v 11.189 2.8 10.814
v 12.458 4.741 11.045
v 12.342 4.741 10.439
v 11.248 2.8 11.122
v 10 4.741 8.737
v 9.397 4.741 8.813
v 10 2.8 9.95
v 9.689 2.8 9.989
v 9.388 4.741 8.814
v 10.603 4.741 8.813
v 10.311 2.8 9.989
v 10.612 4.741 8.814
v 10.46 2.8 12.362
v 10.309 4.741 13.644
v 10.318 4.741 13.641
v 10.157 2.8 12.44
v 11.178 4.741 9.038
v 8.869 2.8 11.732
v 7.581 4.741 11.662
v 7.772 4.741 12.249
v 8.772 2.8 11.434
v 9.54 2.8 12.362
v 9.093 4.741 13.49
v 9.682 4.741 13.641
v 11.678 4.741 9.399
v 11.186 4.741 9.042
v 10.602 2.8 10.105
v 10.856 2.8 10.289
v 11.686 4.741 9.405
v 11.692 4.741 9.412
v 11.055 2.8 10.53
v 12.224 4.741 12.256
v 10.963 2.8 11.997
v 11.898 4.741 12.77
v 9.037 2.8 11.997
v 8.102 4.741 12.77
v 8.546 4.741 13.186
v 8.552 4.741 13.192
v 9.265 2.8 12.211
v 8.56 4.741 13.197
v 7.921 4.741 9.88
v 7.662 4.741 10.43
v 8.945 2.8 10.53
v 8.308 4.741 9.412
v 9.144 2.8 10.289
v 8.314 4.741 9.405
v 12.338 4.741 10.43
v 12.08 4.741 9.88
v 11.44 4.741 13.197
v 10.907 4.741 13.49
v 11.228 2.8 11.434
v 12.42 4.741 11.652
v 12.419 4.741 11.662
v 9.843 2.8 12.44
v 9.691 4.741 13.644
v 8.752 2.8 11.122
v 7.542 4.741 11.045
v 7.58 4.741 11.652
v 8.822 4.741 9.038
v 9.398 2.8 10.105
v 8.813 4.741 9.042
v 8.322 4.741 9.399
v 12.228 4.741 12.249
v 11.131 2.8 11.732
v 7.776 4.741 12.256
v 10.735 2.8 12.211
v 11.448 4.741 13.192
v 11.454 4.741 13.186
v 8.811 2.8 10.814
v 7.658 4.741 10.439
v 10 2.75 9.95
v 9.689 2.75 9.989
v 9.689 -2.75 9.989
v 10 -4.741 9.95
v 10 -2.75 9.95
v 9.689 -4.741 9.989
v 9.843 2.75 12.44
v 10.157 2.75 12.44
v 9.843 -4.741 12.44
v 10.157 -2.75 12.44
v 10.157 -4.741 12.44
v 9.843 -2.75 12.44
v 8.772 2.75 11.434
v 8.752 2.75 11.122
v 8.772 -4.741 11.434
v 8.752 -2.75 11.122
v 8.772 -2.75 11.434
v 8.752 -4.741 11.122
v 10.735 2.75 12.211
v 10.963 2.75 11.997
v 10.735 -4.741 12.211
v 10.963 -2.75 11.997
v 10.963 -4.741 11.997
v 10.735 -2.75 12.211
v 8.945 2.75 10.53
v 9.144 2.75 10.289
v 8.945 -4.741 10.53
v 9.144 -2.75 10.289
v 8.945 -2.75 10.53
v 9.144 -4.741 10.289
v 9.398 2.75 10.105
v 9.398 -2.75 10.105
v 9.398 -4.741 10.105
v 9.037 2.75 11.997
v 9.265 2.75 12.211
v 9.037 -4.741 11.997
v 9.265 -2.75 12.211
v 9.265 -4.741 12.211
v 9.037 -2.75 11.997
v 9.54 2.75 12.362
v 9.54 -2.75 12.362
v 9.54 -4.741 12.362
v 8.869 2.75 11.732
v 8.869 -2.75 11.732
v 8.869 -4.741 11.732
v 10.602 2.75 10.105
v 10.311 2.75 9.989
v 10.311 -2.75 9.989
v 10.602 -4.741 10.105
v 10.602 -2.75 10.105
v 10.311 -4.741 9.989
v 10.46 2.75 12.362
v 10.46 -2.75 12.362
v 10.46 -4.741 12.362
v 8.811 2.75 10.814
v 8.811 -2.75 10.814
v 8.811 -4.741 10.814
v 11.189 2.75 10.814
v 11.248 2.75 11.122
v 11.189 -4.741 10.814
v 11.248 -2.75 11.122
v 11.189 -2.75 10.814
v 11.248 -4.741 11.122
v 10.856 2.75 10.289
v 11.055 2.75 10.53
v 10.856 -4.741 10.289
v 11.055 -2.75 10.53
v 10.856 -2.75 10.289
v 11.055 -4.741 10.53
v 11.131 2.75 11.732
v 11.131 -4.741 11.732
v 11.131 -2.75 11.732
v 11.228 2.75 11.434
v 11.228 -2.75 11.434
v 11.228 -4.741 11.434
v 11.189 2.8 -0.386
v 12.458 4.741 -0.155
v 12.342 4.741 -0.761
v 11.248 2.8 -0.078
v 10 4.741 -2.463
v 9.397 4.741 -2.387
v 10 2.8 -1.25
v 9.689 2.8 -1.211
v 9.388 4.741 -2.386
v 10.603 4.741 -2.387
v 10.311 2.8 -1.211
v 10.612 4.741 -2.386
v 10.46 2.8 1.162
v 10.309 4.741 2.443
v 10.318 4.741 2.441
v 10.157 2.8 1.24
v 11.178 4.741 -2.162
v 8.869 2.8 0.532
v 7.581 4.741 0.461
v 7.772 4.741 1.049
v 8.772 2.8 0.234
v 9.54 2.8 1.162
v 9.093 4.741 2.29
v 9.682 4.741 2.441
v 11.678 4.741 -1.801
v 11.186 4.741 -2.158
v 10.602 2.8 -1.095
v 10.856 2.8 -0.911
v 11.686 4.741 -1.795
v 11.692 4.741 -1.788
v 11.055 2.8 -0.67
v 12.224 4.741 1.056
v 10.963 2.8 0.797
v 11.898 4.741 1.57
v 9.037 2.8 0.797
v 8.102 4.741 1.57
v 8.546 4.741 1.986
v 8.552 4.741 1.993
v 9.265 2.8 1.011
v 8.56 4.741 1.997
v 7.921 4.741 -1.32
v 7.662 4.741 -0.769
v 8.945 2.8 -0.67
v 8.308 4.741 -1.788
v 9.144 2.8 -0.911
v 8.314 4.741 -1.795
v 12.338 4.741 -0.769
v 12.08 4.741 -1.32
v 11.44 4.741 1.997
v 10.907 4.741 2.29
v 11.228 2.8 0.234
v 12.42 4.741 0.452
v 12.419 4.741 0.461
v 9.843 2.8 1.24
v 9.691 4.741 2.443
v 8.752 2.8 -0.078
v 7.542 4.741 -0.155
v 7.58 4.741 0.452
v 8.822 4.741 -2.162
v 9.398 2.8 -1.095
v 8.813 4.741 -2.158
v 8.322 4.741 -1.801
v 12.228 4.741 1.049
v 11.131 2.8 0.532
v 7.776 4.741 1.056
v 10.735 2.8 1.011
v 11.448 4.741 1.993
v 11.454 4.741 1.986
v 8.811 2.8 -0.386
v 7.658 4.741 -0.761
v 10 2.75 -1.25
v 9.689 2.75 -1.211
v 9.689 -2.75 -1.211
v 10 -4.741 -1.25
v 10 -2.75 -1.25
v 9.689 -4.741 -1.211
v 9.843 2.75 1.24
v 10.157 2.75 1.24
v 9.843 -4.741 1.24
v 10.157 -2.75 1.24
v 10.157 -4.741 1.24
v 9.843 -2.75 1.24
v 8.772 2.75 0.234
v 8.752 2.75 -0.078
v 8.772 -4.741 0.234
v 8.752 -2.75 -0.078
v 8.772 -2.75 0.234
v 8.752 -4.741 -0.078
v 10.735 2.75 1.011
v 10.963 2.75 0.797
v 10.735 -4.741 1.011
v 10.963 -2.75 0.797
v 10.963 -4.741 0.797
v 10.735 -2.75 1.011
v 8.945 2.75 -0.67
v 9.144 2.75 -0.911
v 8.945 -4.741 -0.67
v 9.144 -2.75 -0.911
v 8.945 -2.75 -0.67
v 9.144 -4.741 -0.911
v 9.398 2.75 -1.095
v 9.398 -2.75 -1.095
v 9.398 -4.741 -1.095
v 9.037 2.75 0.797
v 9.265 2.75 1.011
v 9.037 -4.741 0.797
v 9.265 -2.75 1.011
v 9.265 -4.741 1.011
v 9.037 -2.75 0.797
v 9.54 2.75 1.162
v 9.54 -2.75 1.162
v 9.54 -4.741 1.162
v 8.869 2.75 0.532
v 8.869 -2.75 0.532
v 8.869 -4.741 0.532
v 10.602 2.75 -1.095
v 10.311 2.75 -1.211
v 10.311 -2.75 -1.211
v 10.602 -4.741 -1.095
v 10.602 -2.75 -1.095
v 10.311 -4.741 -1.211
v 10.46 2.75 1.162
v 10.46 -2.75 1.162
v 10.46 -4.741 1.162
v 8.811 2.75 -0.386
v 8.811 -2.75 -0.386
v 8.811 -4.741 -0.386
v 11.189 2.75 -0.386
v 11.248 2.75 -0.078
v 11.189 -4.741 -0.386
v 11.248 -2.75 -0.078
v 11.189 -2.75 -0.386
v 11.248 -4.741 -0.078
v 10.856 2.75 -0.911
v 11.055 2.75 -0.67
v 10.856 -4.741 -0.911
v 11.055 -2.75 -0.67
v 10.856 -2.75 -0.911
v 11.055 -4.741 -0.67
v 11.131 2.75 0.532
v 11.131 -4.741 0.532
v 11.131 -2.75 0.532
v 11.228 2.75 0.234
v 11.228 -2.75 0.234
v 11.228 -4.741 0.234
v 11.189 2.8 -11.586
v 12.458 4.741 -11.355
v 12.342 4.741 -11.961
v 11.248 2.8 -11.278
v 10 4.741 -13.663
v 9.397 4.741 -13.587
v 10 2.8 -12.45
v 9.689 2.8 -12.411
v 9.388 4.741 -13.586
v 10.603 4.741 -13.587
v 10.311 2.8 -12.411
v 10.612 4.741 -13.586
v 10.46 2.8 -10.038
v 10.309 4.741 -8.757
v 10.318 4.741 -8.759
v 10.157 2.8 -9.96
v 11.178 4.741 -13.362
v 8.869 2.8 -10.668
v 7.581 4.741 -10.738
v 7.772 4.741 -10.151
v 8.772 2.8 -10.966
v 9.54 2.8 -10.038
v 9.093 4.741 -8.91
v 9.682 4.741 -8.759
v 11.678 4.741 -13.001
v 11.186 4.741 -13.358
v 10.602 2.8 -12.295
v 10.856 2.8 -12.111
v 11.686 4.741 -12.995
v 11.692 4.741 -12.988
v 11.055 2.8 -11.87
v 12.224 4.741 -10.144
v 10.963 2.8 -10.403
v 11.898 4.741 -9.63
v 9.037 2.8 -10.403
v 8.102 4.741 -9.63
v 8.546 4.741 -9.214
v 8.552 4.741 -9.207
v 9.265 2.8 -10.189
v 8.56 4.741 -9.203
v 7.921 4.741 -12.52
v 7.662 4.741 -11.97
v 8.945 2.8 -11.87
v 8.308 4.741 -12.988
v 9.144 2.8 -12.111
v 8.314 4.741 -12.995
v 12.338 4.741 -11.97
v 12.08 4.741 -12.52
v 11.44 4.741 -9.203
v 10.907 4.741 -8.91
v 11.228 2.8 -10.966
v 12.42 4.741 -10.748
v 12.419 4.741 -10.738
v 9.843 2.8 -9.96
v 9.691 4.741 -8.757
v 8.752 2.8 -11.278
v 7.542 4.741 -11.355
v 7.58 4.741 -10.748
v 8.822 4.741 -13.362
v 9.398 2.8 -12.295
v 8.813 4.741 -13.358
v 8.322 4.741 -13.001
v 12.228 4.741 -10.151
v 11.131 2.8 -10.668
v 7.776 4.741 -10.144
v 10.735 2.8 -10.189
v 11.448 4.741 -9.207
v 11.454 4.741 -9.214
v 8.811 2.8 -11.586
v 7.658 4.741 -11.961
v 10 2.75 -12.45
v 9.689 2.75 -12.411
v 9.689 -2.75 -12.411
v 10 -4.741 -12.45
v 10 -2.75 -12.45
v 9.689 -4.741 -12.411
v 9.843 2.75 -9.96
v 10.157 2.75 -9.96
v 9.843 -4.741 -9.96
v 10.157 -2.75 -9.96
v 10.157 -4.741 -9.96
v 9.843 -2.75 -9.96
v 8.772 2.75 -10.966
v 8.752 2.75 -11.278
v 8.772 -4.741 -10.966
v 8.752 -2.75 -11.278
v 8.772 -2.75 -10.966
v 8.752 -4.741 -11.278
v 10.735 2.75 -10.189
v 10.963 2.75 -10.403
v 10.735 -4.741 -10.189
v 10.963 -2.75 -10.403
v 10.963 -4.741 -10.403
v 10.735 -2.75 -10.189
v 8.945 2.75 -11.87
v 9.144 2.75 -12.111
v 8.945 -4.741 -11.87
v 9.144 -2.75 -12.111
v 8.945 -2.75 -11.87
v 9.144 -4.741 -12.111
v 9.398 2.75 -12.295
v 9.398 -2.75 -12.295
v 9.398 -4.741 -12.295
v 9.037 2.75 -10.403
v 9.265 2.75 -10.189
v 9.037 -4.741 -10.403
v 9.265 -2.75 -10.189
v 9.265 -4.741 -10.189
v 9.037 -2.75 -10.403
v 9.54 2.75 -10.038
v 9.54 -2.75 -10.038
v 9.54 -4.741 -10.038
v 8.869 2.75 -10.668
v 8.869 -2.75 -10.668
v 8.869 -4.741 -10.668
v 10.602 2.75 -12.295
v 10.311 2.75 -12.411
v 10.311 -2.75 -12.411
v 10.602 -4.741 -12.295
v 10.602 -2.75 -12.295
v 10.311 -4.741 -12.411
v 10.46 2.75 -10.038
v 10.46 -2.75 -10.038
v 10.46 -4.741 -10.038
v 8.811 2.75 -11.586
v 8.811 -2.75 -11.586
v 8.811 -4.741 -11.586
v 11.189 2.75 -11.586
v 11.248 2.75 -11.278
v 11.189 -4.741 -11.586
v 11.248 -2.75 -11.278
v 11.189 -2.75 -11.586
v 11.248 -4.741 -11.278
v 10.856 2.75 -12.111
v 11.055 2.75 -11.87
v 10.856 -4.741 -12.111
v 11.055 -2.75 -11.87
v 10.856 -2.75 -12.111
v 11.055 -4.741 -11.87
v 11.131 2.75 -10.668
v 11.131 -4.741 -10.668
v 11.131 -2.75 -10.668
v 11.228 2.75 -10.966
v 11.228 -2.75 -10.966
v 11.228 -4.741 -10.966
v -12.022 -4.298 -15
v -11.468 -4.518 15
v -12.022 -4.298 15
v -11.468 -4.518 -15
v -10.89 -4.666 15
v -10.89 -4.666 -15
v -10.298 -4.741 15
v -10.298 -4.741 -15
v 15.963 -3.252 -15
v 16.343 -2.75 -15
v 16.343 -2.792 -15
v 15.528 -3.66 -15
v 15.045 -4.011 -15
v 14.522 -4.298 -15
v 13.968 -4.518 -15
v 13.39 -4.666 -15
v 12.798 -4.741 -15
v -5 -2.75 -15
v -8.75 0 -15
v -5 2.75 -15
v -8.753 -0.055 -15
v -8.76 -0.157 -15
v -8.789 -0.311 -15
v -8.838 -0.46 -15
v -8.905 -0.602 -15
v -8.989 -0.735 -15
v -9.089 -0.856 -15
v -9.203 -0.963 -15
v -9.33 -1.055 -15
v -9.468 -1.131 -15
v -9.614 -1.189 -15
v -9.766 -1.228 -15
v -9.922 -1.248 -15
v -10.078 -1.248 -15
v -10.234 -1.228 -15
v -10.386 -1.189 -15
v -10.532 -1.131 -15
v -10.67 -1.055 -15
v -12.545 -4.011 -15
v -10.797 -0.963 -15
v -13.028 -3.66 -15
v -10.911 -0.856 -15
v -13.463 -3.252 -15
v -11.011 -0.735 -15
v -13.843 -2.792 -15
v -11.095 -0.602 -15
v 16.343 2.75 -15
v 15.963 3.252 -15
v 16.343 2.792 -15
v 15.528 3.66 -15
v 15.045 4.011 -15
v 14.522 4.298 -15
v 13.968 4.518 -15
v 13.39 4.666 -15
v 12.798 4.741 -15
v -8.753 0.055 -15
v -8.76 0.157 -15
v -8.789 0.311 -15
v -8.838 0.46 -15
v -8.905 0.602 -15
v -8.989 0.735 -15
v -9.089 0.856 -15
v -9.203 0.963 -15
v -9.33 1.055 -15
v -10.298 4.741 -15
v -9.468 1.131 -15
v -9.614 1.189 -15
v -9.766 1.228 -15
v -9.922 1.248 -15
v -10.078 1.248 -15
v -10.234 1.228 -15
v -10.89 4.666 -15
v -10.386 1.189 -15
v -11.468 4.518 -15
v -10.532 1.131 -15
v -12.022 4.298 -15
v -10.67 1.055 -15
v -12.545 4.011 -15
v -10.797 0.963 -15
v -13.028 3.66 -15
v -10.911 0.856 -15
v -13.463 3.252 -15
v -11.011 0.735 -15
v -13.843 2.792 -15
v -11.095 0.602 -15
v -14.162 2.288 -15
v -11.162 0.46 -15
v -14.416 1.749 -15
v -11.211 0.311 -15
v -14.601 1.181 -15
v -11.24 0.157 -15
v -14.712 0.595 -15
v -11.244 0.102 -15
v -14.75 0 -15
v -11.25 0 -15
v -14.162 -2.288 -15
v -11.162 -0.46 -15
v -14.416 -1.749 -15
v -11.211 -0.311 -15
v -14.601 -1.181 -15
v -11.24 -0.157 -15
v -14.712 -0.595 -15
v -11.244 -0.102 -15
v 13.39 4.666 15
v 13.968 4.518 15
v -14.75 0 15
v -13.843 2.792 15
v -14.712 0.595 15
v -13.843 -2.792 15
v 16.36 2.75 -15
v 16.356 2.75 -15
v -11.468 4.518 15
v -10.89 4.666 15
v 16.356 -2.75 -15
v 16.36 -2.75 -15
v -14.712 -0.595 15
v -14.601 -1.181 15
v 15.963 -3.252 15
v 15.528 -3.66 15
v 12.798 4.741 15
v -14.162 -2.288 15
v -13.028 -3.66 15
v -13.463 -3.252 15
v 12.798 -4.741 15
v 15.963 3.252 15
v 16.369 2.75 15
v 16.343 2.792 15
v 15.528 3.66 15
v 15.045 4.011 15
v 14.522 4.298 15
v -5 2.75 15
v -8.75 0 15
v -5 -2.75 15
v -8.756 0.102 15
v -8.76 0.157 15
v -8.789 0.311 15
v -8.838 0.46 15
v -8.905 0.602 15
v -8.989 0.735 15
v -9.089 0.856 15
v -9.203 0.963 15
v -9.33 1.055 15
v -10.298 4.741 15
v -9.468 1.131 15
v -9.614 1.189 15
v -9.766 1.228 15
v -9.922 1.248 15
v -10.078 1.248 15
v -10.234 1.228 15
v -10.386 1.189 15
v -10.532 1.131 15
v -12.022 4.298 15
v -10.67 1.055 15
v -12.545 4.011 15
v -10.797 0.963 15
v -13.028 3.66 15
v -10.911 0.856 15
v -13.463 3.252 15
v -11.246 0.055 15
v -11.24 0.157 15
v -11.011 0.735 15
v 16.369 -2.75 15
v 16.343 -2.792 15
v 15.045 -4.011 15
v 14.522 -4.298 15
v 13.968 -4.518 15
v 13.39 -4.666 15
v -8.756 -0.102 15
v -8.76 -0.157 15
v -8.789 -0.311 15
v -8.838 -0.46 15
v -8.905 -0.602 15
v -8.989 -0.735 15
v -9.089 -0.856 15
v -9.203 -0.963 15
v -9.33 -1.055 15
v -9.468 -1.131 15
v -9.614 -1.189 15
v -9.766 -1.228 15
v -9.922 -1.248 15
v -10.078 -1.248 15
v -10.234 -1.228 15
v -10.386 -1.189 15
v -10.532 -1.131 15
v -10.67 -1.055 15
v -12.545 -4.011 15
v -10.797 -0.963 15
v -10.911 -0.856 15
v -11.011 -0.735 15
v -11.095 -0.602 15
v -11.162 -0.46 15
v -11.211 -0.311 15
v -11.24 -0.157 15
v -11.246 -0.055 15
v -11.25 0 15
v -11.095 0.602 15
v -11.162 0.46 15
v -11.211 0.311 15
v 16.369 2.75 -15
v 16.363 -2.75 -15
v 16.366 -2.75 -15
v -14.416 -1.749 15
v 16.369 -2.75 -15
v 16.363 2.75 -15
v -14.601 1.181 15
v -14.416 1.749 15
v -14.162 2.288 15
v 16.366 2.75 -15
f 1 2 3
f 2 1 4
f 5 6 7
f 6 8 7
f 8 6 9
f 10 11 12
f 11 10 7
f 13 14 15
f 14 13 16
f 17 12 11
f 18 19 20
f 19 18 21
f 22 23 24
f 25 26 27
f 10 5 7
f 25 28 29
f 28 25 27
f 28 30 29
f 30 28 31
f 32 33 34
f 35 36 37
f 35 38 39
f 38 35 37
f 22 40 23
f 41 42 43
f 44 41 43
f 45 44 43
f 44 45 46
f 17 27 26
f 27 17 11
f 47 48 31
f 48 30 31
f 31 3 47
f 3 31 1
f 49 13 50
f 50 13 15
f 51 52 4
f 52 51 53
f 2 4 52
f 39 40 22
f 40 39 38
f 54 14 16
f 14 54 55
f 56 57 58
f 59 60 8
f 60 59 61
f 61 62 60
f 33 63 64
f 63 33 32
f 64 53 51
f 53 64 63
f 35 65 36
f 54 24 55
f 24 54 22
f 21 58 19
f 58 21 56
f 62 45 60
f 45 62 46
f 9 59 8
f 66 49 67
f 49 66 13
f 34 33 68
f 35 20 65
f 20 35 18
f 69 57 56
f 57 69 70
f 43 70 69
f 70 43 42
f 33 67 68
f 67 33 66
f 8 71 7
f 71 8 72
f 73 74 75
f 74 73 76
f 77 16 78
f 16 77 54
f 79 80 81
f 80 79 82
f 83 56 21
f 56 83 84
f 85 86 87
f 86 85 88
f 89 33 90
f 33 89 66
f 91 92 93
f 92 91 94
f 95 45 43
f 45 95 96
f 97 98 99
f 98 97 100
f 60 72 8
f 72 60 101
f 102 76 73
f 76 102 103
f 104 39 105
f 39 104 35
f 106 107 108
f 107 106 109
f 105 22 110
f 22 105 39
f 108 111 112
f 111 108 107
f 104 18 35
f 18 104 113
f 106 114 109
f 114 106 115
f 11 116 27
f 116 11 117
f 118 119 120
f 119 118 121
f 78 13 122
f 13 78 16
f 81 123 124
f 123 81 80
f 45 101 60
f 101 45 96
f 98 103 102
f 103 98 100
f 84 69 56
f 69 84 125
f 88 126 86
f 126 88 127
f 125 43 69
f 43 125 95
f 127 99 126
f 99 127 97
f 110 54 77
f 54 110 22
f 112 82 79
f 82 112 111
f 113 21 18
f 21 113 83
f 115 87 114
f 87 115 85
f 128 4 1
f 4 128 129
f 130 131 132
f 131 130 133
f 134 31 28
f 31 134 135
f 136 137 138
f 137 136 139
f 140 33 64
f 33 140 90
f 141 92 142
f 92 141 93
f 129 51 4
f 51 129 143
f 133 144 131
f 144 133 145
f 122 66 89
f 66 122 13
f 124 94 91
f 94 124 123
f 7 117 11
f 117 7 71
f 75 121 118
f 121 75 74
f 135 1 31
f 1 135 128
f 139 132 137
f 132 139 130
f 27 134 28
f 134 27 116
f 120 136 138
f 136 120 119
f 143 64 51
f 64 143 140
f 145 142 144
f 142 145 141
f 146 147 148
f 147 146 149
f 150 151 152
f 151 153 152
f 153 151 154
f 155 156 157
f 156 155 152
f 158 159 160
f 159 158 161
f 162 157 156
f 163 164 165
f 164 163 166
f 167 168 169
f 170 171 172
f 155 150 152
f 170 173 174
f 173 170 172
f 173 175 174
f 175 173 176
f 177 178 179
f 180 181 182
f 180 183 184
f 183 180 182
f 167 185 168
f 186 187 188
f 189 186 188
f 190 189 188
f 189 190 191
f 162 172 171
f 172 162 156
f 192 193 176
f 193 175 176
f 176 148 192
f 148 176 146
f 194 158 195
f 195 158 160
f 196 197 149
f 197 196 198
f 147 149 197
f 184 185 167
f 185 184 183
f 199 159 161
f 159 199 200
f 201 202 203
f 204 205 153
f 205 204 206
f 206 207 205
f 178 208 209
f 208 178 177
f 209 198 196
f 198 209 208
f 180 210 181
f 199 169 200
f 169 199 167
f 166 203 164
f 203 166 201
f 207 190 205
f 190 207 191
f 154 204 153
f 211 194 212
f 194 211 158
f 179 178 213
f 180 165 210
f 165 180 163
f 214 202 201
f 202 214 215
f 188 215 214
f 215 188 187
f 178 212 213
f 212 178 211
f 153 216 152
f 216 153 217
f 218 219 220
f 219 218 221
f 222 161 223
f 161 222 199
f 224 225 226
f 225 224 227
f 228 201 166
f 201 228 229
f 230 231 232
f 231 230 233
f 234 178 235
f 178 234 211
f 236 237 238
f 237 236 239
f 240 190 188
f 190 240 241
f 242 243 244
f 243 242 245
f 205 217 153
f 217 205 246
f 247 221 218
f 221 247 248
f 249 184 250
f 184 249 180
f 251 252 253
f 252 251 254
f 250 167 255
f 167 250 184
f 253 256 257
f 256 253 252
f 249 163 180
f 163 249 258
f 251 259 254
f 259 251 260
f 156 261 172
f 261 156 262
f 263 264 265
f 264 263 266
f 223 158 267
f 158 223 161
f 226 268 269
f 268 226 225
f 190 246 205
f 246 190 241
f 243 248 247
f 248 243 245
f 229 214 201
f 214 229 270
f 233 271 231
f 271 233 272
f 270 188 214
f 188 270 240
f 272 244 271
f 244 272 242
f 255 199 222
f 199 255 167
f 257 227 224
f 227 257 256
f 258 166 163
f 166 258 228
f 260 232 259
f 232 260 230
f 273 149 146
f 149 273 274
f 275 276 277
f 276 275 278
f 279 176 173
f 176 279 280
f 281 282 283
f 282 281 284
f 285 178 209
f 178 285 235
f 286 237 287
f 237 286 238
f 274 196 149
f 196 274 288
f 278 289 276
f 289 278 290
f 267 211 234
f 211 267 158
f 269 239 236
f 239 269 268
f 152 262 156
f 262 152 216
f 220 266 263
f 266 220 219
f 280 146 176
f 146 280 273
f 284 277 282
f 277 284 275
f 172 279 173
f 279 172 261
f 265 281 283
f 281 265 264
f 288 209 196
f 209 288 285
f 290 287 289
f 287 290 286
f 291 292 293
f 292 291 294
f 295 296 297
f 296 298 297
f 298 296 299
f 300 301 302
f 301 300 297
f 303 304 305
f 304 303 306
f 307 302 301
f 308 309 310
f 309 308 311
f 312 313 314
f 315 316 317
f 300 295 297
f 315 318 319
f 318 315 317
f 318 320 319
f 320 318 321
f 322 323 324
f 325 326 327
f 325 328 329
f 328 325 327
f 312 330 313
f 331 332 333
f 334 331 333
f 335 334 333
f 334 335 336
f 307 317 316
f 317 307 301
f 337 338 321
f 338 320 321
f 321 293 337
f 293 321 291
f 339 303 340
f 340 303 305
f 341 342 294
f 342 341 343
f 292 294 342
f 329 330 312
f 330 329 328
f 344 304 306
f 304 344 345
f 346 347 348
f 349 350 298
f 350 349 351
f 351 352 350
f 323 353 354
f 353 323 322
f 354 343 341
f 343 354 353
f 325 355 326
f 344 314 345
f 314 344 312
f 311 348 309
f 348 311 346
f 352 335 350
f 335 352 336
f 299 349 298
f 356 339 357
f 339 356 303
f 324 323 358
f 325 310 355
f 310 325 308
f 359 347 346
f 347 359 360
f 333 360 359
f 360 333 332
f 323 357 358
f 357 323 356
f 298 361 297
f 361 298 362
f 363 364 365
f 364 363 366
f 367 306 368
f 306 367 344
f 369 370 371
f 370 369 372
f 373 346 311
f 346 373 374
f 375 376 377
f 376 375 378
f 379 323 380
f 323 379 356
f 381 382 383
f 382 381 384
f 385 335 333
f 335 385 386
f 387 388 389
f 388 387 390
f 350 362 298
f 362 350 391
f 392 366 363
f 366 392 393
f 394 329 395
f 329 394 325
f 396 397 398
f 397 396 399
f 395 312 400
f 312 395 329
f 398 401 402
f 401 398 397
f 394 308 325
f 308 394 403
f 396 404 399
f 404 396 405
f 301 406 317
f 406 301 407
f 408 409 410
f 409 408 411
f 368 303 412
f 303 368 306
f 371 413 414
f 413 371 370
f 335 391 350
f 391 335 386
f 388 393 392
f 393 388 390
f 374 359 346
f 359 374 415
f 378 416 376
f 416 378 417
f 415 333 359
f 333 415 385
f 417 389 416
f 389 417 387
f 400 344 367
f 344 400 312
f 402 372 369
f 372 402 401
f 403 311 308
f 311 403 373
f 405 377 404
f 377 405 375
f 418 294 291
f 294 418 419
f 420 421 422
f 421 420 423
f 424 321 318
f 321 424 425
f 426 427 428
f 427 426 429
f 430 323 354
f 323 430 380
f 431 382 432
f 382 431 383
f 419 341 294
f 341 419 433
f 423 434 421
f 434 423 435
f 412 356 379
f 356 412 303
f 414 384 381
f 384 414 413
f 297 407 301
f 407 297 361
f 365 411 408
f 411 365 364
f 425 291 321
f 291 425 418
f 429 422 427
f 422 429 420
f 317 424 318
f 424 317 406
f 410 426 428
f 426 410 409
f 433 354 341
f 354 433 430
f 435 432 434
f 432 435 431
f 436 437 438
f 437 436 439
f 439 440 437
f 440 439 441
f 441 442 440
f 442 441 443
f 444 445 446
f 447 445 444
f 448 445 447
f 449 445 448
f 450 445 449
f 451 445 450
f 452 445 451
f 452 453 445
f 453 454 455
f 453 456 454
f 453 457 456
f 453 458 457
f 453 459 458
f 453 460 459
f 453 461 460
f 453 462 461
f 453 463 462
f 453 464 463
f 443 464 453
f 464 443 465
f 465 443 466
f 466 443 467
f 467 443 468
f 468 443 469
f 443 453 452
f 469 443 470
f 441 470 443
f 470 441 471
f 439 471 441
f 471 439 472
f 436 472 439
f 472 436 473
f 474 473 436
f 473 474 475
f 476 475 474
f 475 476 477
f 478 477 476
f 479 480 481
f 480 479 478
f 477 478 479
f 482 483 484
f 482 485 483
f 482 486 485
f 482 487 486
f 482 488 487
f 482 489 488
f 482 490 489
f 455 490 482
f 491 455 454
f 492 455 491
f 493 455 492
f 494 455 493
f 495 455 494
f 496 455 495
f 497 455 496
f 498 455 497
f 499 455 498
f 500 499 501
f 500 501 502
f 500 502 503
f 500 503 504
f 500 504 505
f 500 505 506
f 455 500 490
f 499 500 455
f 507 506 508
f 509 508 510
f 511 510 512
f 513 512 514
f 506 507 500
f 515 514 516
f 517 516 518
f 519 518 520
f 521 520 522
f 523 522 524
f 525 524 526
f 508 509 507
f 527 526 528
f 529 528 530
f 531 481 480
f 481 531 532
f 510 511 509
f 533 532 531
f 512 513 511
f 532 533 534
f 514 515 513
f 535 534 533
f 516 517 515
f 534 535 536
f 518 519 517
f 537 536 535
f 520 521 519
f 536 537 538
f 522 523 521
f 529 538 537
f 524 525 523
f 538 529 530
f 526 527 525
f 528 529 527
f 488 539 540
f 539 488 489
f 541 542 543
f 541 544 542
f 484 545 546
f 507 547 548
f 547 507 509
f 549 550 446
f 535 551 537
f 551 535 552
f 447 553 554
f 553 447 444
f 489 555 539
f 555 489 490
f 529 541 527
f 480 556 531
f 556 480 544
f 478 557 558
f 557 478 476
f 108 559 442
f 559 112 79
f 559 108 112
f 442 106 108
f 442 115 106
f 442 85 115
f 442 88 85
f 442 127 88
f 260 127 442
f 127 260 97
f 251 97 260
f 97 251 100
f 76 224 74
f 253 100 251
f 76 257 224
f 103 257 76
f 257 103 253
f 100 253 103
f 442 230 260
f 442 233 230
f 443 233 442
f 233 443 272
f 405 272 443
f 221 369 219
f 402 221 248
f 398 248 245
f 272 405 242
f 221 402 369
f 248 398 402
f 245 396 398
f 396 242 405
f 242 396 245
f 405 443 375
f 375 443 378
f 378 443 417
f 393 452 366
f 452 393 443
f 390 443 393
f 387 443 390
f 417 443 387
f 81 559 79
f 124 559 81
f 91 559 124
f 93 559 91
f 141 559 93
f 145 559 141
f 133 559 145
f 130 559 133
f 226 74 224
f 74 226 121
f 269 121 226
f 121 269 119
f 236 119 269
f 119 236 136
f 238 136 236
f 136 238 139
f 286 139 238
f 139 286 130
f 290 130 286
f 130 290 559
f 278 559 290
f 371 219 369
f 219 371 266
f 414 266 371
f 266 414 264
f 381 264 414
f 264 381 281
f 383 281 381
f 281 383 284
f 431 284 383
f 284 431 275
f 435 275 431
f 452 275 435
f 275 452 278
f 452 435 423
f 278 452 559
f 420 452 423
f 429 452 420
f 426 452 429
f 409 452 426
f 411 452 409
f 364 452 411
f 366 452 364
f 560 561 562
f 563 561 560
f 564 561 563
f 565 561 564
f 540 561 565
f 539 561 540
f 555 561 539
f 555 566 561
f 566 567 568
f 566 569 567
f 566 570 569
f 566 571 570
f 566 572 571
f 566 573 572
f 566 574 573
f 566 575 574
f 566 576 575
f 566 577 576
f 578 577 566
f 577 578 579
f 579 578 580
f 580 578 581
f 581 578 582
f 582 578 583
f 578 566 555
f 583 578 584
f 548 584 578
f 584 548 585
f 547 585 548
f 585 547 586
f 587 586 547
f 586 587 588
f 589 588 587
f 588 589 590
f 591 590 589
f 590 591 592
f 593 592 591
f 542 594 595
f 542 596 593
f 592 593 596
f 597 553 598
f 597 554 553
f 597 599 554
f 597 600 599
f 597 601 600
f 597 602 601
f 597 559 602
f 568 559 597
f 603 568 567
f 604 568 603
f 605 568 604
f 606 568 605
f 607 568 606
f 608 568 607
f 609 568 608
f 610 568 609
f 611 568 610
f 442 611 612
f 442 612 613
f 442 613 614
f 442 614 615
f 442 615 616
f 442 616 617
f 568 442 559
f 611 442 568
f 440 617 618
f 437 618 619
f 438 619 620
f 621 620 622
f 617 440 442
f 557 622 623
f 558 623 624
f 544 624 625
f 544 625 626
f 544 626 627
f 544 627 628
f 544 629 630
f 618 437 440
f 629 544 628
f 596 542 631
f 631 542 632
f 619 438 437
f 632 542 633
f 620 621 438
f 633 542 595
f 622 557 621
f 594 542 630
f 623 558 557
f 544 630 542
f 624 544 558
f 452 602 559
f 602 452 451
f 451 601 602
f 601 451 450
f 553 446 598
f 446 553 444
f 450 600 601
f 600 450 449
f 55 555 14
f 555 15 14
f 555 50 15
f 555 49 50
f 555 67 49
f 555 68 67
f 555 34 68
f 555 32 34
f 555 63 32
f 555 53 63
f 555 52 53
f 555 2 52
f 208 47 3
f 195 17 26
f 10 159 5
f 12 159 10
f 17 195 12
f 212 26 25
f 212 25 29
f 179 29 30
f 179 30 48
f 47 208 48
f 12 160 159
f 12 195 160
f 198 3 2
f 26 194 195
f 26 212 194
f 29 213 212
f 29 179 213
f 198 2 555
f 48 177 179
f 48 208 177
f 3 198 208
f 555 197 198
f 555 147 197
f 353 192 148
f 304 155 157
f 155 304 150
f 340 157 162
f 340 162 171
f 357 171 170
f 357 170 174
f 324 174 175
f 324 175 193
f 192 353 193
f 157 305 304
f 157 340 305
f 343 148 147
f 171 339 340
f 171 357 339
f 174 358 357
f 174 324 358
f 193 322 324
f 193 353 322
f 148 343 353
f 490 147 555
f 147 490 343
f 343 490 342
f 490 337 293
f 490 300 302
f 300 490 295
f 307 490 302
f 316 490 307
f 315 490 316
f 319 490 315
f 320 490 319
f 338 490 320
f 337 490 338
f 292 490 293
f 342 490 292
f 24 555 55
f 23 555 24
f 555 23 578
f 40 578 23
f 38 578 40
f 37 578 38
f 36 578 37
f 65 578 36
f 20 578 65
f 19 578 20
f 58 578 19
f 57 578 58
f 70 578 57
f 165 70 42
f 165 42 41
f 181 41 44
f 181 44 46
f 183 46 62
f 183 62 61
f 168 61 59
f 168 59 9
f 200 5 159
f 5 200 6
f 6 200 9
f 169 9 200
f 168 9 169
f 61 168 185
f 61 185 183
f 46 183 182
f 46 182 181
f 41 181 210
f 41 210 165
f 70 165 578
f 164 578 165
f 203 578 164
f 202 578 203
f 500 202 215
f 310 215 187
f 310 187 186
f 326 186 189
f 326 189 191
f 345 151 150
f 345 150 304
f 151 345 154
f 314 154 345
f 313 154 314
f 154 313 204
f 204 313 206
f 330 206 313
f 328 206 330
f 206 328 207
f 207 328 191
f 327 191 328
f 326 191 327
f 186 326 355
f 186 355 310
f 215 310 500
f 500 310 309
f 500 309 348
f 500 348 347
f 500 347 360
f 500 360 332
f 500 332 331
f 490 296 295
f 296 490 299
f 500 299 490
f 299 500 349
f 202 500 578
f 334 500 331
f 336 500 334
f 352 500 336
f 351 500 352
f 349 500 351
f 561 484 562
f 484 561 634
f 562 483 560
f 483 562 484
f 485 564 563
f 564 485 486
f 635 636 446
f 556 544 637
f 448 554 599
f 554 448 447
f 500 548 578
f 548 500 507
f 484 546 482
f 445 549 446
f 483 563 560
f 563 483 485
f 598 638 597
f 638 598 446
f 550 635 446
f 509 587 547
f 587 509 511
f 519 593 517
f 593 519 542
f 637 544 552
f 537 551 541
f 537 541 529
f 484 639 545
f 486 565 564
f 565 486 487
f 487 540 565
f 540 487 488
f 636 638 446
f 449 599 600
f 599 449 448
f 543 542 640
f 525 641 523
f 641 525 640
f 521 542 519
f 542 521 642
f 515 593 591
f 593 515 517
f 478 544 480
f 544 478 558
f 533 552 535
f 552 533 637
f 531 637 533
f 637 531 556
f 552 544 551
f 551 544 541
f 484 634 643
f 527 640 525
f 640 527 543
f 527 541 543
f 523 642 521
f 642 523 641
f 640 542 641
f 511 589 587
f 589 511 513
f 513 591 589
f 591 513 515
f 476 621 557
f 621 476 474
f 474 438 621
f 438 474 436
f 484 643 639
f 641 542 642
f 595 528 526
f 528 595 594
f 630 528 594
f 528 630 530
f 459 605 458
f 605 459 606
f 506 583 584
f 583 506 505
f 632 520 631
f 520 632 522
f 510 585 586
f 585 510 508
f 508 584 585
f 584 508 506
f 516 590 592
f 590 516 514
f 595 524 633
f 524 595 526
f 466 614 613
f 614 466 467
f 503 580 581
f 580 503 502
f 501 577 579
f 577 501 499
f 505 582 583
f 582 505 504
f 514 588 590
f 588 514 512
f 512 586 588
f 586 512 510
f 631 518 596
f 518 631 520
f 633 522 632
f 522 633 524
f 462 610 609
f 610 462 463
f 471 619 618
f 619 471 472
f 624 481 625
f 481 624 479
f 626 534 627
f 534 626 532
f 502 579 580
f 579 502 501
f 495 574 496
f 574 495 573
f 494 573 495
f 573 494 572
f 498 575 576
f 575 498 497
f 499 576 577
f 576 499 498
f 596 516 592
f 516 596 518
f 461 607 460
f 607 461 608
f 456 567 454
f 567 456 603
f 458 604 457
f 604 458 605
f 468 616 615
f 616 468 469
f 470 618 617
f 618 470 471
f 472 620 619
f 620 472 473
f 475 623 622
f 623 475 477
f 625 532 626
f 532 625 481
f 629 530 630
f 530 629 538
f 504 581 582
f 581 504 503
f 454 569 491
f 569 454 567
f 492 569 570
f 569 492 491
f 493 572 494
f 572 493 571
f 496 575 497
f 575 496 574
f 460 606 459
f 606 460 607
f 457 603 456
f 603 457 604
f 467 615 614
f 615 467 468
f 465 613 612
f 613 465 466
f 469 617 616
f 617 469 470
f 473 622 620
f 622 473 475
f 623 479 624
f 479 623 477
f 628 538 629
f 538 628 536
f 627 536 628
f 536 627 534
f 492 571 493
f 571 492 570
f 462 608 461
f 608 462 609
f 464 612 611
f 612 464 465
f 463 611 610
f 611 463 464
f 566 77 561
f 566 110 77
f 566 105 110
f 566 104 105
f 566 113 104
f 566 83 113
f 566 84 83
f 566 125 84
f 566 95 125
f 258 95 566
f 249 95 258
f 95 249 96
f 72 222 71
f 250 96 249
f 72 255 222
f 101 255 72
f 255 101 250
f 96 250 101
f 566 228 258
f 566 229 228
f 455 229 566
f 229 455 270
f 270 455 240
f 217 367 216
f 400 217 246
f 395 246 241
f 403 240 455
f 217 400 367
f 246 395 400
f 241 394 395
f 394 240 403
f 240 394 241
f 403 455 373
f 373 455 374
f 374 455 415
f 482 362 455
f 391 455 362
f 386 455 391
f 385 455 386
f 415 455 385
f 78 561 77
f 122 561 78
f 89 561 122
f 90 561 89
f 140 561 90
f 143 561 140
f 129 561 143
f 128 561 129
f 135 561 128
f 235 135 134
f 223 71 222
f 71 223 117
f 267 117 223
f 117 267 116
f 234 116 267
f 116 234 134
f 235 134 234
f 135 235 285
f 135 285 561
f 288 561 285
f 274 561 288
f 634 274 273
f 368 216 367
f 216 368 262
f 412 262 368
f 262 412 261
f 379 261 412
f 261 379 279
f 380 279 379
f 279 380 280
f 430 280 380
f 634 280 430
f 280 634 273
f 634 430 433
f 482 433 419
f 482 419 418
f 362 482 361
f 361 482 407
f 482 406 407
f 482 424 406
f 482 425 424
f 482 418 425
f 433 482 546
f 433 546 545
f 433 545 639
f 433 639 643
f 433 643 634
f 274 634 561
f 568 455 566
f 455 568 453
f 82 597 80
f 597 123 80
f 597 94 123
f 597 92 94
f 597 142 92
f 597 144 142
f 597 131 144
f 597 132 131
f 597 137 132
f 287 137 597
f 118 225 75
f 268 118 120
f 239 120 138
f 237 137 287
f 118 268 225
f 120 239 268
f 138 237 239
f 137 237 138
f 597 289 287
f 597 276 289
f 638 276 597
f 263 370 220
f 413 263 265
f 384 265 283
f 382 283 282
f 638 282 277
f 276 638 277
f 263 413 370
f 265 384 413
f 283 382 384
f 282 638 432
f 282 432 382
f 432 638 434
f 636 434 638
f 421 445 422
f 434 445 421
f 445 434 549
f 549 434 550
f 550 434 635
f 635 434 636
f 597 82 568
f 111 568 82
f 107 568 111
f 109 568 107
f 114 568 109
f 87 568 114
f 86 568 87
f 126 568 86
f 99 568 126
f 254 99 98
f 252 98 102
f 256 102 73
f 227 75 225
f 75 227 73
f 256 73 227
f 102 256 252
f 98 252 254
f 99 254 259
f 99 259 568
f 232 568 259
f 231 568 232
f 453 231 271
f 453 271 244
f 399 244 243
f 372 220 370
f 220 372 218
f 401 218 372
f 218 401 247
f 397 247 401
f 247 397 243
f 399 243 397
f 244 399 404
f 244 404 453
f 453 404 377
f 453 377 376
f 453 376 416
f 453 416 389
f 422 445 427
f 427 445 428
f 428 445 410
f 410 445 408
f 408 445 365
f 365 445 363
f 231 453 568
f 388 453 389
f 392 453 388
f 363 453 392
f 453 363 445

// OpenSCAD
// file: openscad-extra/src/countersink.scad
/*
Countersink depression for tapered screw heads.
*/

module make_countersink(d1=0, d2=0, h=0, outer=10, inner=0, $fn=25){
    /*
    d1 = shaft diameter
    d2 = head diameter
    h = height of taper
    outer = height of head mass
    inner = height of shaft mass, including taper
    */
    default_taper_height = 2;
    d1 = d1 ? d1 : 2.5;
    d2 = d2 ? d2 : 5;
    h = h ? h : default_taper_height;
    inner = (inner ? inner : 10) - default_taper_height;
    
    translate([0, 0, -default_taper_height/2])
    union(){
        
        // taper
        cylinder(d1=d1, d2=d2, h=h, center=true, $fn=$fn);
    
        // big top
    	translate([0, 0, h/2])
    	cylinder(d=d2, h=outer, center=false, $fn=$fn);
        
    	// lower bottom
    	translate([0, 0, -h/2-inner])
    	cylinder(d=d1, h=inner, center=false, $fn=$fn);
	}
}

make_countersink(inner=10);

color("blue")
translate([0,2,0])
cylinder(d=2.5, h=20, center=true, $fn=100);
// file: foot_mock.scad
use <openscad-extra/src/countersink.scad>;

module foot_mock(){
    difference(){
        union(){
            cube([80, 10, 5], center=true);
            
            if(0)
            difference(){
                color("blue")
                scale([1,1,.6])
                translate([0,0,0])
                rotate([90,0,0])
                cylinder(d=80, h=10, center=true, $fn=50);
                
                // cylinder flat cutout
                if(0)
                translate([0,0,-100/2+5/2])
                cube([100, 100, 100], center=true);
            }
                    
            // pivot hub mass
            for(j=[0:1])
            mirror([j,0,0])
            hull()
            for(i=[0:1])
            translate([(-30/2-10/2/2-.5),0,5/2+5*i])
            rotate([0,90,0])
            cylinder(d=10, h=5, center=true, $fn=50);
        }
        
        // slot cutout
        if(0)
        translate([0,0,50/2+5/2-0.25])
        cube([100, 5.5, 50], center=true);

    
        // bottom mount holes
        color("red")
        for(i=[0:7])
        translate([10*i-35,0,-7])
        rotate([180,0,0])
        make_countersink(d1=2.5, d2=5, inner=10);
        
        // side mount holes
        color("red")
        for(i=[0:6])
        translate([10*i-30,-10,0])
        rotate([90,0,0])
        make_countersink(d1=2.5, d2=5, inner=20);
        
        // pivot holes
        color("red")
        for(i=[0:1])
        mirror([i,0,0])
        translate([-20.5,0,5/2+5])
        rotate([0,-90,0])
        make_countersink(d1=3, d2=5, inner=20);
    }
    
    // mounting holes
    if(0)
    color("red")
    for(i=[0:2])
    translate([11.2*i-11.2,5,17.5+10])
    rotate([-90,0,0])
    make_countersink(d1=2.5, d2=5, inner=20);
    
    
    
    if(0)
    translate([0,10,50/2+5/2])
    cube([30, 20, 50], center=true);
    
}

module foot_mock_ankle(){
    
    difference(){
        
        // main mass
        if(1)
        hull()
        for(i=[0:1])
        translate([0,0,(20+2.5)*i])
        rotate([0,90,0])
        cylinder(d=10-0.5, h=30, center=true, $fn=50);
        
        // mount axle hole
        rotate([0,90,0])
        cylinder(d=2.5, h=100, center=true, $fn=50);
        
        // mounting holes
        translate([0,0,-10+2.5])
        color("red")
        for(i=[0:2])
        translate([11.2*i-11.2, 5-.2, 17.5+10])
        rotate([-90,0,0])
        make_countersink(d1=2.5, d2=5, inner=20);
        
        // slot cutout
        if(1)
        translate([0,0,50/2+5/2+5/2])
        cube([100, 5.5, 50], center=true);
        
    }// end diff
}

module foot_mock_toe(major_length=80, minor_length=10, width=20, height=5){
    difference(){
        //color("red")
        linear_extrude(height=height)
        polygon([[-major_length/2,0], [major_length/2,0], [minor_length/2,width], [-minor_length/2,width]]);
        
        translate([0,5/2,5/2])
        cube([30.5,5.5,5.5], center=true);
        
        // side mount holes
        for(j=[0:1])
        mirror([j,0,0])
        color("red")
        for(i=[0:1])
        translate([10*i-30,4,5/2])
        rotate([-90,0,0])
        make_countersink(d1=3, d2=5, inner=20);
    
        // middle mount hole
        color("red")
        translate([0,20,5/2])
        rotate([-90,0,0])
        make_countersink(d1=3, d2=5, inner=20);

    }
}

module foot_mock_toe_spring(thickness=.4*2, length=20){

    difference(){
        union(){
            translate([0,thickness/2,length/2])
            cube([30, thickness, length], center=true);

            translate([0,5/2,5/2])
            cube([30, 5, 5], center=true);
        }
        
        // side mount holes
        color("red")
        for(i=[0:6])
        translate([10*i-30,5,5/2])
        rotate([-90,0,0])
        make_countersink(d1=3, d2=5, inner=20);
    }
}

if(1)
color("orange")
translate([0,0,10])
rotate([0,-30+4,0])
translate([0,0,50-15])
rotate([0,90,0])
rotate([90,0,0])
import("printable/leg_lower.stl");

translate([0,0,-5/2-15])
foot_mock();

translate([0,0,-10])
foot_mock_ankle();

translate([0,5,-20])
foot_mock_toe();

translate([0,5,-20])
foot_mock_toe_spring();
// main file
use <foot_mock.scad>;

if(0)
translate([0,0,-5/2-15])
foot_mock();

if(1)
rotate([0,90,0])
translate([0,0,-10])
foot_mock_ankle();

if(0)
translate([0,5,-20])
foot_mock_toe();

if(0)
translate([0,5,-20])
foot_mock_toe_spring();
